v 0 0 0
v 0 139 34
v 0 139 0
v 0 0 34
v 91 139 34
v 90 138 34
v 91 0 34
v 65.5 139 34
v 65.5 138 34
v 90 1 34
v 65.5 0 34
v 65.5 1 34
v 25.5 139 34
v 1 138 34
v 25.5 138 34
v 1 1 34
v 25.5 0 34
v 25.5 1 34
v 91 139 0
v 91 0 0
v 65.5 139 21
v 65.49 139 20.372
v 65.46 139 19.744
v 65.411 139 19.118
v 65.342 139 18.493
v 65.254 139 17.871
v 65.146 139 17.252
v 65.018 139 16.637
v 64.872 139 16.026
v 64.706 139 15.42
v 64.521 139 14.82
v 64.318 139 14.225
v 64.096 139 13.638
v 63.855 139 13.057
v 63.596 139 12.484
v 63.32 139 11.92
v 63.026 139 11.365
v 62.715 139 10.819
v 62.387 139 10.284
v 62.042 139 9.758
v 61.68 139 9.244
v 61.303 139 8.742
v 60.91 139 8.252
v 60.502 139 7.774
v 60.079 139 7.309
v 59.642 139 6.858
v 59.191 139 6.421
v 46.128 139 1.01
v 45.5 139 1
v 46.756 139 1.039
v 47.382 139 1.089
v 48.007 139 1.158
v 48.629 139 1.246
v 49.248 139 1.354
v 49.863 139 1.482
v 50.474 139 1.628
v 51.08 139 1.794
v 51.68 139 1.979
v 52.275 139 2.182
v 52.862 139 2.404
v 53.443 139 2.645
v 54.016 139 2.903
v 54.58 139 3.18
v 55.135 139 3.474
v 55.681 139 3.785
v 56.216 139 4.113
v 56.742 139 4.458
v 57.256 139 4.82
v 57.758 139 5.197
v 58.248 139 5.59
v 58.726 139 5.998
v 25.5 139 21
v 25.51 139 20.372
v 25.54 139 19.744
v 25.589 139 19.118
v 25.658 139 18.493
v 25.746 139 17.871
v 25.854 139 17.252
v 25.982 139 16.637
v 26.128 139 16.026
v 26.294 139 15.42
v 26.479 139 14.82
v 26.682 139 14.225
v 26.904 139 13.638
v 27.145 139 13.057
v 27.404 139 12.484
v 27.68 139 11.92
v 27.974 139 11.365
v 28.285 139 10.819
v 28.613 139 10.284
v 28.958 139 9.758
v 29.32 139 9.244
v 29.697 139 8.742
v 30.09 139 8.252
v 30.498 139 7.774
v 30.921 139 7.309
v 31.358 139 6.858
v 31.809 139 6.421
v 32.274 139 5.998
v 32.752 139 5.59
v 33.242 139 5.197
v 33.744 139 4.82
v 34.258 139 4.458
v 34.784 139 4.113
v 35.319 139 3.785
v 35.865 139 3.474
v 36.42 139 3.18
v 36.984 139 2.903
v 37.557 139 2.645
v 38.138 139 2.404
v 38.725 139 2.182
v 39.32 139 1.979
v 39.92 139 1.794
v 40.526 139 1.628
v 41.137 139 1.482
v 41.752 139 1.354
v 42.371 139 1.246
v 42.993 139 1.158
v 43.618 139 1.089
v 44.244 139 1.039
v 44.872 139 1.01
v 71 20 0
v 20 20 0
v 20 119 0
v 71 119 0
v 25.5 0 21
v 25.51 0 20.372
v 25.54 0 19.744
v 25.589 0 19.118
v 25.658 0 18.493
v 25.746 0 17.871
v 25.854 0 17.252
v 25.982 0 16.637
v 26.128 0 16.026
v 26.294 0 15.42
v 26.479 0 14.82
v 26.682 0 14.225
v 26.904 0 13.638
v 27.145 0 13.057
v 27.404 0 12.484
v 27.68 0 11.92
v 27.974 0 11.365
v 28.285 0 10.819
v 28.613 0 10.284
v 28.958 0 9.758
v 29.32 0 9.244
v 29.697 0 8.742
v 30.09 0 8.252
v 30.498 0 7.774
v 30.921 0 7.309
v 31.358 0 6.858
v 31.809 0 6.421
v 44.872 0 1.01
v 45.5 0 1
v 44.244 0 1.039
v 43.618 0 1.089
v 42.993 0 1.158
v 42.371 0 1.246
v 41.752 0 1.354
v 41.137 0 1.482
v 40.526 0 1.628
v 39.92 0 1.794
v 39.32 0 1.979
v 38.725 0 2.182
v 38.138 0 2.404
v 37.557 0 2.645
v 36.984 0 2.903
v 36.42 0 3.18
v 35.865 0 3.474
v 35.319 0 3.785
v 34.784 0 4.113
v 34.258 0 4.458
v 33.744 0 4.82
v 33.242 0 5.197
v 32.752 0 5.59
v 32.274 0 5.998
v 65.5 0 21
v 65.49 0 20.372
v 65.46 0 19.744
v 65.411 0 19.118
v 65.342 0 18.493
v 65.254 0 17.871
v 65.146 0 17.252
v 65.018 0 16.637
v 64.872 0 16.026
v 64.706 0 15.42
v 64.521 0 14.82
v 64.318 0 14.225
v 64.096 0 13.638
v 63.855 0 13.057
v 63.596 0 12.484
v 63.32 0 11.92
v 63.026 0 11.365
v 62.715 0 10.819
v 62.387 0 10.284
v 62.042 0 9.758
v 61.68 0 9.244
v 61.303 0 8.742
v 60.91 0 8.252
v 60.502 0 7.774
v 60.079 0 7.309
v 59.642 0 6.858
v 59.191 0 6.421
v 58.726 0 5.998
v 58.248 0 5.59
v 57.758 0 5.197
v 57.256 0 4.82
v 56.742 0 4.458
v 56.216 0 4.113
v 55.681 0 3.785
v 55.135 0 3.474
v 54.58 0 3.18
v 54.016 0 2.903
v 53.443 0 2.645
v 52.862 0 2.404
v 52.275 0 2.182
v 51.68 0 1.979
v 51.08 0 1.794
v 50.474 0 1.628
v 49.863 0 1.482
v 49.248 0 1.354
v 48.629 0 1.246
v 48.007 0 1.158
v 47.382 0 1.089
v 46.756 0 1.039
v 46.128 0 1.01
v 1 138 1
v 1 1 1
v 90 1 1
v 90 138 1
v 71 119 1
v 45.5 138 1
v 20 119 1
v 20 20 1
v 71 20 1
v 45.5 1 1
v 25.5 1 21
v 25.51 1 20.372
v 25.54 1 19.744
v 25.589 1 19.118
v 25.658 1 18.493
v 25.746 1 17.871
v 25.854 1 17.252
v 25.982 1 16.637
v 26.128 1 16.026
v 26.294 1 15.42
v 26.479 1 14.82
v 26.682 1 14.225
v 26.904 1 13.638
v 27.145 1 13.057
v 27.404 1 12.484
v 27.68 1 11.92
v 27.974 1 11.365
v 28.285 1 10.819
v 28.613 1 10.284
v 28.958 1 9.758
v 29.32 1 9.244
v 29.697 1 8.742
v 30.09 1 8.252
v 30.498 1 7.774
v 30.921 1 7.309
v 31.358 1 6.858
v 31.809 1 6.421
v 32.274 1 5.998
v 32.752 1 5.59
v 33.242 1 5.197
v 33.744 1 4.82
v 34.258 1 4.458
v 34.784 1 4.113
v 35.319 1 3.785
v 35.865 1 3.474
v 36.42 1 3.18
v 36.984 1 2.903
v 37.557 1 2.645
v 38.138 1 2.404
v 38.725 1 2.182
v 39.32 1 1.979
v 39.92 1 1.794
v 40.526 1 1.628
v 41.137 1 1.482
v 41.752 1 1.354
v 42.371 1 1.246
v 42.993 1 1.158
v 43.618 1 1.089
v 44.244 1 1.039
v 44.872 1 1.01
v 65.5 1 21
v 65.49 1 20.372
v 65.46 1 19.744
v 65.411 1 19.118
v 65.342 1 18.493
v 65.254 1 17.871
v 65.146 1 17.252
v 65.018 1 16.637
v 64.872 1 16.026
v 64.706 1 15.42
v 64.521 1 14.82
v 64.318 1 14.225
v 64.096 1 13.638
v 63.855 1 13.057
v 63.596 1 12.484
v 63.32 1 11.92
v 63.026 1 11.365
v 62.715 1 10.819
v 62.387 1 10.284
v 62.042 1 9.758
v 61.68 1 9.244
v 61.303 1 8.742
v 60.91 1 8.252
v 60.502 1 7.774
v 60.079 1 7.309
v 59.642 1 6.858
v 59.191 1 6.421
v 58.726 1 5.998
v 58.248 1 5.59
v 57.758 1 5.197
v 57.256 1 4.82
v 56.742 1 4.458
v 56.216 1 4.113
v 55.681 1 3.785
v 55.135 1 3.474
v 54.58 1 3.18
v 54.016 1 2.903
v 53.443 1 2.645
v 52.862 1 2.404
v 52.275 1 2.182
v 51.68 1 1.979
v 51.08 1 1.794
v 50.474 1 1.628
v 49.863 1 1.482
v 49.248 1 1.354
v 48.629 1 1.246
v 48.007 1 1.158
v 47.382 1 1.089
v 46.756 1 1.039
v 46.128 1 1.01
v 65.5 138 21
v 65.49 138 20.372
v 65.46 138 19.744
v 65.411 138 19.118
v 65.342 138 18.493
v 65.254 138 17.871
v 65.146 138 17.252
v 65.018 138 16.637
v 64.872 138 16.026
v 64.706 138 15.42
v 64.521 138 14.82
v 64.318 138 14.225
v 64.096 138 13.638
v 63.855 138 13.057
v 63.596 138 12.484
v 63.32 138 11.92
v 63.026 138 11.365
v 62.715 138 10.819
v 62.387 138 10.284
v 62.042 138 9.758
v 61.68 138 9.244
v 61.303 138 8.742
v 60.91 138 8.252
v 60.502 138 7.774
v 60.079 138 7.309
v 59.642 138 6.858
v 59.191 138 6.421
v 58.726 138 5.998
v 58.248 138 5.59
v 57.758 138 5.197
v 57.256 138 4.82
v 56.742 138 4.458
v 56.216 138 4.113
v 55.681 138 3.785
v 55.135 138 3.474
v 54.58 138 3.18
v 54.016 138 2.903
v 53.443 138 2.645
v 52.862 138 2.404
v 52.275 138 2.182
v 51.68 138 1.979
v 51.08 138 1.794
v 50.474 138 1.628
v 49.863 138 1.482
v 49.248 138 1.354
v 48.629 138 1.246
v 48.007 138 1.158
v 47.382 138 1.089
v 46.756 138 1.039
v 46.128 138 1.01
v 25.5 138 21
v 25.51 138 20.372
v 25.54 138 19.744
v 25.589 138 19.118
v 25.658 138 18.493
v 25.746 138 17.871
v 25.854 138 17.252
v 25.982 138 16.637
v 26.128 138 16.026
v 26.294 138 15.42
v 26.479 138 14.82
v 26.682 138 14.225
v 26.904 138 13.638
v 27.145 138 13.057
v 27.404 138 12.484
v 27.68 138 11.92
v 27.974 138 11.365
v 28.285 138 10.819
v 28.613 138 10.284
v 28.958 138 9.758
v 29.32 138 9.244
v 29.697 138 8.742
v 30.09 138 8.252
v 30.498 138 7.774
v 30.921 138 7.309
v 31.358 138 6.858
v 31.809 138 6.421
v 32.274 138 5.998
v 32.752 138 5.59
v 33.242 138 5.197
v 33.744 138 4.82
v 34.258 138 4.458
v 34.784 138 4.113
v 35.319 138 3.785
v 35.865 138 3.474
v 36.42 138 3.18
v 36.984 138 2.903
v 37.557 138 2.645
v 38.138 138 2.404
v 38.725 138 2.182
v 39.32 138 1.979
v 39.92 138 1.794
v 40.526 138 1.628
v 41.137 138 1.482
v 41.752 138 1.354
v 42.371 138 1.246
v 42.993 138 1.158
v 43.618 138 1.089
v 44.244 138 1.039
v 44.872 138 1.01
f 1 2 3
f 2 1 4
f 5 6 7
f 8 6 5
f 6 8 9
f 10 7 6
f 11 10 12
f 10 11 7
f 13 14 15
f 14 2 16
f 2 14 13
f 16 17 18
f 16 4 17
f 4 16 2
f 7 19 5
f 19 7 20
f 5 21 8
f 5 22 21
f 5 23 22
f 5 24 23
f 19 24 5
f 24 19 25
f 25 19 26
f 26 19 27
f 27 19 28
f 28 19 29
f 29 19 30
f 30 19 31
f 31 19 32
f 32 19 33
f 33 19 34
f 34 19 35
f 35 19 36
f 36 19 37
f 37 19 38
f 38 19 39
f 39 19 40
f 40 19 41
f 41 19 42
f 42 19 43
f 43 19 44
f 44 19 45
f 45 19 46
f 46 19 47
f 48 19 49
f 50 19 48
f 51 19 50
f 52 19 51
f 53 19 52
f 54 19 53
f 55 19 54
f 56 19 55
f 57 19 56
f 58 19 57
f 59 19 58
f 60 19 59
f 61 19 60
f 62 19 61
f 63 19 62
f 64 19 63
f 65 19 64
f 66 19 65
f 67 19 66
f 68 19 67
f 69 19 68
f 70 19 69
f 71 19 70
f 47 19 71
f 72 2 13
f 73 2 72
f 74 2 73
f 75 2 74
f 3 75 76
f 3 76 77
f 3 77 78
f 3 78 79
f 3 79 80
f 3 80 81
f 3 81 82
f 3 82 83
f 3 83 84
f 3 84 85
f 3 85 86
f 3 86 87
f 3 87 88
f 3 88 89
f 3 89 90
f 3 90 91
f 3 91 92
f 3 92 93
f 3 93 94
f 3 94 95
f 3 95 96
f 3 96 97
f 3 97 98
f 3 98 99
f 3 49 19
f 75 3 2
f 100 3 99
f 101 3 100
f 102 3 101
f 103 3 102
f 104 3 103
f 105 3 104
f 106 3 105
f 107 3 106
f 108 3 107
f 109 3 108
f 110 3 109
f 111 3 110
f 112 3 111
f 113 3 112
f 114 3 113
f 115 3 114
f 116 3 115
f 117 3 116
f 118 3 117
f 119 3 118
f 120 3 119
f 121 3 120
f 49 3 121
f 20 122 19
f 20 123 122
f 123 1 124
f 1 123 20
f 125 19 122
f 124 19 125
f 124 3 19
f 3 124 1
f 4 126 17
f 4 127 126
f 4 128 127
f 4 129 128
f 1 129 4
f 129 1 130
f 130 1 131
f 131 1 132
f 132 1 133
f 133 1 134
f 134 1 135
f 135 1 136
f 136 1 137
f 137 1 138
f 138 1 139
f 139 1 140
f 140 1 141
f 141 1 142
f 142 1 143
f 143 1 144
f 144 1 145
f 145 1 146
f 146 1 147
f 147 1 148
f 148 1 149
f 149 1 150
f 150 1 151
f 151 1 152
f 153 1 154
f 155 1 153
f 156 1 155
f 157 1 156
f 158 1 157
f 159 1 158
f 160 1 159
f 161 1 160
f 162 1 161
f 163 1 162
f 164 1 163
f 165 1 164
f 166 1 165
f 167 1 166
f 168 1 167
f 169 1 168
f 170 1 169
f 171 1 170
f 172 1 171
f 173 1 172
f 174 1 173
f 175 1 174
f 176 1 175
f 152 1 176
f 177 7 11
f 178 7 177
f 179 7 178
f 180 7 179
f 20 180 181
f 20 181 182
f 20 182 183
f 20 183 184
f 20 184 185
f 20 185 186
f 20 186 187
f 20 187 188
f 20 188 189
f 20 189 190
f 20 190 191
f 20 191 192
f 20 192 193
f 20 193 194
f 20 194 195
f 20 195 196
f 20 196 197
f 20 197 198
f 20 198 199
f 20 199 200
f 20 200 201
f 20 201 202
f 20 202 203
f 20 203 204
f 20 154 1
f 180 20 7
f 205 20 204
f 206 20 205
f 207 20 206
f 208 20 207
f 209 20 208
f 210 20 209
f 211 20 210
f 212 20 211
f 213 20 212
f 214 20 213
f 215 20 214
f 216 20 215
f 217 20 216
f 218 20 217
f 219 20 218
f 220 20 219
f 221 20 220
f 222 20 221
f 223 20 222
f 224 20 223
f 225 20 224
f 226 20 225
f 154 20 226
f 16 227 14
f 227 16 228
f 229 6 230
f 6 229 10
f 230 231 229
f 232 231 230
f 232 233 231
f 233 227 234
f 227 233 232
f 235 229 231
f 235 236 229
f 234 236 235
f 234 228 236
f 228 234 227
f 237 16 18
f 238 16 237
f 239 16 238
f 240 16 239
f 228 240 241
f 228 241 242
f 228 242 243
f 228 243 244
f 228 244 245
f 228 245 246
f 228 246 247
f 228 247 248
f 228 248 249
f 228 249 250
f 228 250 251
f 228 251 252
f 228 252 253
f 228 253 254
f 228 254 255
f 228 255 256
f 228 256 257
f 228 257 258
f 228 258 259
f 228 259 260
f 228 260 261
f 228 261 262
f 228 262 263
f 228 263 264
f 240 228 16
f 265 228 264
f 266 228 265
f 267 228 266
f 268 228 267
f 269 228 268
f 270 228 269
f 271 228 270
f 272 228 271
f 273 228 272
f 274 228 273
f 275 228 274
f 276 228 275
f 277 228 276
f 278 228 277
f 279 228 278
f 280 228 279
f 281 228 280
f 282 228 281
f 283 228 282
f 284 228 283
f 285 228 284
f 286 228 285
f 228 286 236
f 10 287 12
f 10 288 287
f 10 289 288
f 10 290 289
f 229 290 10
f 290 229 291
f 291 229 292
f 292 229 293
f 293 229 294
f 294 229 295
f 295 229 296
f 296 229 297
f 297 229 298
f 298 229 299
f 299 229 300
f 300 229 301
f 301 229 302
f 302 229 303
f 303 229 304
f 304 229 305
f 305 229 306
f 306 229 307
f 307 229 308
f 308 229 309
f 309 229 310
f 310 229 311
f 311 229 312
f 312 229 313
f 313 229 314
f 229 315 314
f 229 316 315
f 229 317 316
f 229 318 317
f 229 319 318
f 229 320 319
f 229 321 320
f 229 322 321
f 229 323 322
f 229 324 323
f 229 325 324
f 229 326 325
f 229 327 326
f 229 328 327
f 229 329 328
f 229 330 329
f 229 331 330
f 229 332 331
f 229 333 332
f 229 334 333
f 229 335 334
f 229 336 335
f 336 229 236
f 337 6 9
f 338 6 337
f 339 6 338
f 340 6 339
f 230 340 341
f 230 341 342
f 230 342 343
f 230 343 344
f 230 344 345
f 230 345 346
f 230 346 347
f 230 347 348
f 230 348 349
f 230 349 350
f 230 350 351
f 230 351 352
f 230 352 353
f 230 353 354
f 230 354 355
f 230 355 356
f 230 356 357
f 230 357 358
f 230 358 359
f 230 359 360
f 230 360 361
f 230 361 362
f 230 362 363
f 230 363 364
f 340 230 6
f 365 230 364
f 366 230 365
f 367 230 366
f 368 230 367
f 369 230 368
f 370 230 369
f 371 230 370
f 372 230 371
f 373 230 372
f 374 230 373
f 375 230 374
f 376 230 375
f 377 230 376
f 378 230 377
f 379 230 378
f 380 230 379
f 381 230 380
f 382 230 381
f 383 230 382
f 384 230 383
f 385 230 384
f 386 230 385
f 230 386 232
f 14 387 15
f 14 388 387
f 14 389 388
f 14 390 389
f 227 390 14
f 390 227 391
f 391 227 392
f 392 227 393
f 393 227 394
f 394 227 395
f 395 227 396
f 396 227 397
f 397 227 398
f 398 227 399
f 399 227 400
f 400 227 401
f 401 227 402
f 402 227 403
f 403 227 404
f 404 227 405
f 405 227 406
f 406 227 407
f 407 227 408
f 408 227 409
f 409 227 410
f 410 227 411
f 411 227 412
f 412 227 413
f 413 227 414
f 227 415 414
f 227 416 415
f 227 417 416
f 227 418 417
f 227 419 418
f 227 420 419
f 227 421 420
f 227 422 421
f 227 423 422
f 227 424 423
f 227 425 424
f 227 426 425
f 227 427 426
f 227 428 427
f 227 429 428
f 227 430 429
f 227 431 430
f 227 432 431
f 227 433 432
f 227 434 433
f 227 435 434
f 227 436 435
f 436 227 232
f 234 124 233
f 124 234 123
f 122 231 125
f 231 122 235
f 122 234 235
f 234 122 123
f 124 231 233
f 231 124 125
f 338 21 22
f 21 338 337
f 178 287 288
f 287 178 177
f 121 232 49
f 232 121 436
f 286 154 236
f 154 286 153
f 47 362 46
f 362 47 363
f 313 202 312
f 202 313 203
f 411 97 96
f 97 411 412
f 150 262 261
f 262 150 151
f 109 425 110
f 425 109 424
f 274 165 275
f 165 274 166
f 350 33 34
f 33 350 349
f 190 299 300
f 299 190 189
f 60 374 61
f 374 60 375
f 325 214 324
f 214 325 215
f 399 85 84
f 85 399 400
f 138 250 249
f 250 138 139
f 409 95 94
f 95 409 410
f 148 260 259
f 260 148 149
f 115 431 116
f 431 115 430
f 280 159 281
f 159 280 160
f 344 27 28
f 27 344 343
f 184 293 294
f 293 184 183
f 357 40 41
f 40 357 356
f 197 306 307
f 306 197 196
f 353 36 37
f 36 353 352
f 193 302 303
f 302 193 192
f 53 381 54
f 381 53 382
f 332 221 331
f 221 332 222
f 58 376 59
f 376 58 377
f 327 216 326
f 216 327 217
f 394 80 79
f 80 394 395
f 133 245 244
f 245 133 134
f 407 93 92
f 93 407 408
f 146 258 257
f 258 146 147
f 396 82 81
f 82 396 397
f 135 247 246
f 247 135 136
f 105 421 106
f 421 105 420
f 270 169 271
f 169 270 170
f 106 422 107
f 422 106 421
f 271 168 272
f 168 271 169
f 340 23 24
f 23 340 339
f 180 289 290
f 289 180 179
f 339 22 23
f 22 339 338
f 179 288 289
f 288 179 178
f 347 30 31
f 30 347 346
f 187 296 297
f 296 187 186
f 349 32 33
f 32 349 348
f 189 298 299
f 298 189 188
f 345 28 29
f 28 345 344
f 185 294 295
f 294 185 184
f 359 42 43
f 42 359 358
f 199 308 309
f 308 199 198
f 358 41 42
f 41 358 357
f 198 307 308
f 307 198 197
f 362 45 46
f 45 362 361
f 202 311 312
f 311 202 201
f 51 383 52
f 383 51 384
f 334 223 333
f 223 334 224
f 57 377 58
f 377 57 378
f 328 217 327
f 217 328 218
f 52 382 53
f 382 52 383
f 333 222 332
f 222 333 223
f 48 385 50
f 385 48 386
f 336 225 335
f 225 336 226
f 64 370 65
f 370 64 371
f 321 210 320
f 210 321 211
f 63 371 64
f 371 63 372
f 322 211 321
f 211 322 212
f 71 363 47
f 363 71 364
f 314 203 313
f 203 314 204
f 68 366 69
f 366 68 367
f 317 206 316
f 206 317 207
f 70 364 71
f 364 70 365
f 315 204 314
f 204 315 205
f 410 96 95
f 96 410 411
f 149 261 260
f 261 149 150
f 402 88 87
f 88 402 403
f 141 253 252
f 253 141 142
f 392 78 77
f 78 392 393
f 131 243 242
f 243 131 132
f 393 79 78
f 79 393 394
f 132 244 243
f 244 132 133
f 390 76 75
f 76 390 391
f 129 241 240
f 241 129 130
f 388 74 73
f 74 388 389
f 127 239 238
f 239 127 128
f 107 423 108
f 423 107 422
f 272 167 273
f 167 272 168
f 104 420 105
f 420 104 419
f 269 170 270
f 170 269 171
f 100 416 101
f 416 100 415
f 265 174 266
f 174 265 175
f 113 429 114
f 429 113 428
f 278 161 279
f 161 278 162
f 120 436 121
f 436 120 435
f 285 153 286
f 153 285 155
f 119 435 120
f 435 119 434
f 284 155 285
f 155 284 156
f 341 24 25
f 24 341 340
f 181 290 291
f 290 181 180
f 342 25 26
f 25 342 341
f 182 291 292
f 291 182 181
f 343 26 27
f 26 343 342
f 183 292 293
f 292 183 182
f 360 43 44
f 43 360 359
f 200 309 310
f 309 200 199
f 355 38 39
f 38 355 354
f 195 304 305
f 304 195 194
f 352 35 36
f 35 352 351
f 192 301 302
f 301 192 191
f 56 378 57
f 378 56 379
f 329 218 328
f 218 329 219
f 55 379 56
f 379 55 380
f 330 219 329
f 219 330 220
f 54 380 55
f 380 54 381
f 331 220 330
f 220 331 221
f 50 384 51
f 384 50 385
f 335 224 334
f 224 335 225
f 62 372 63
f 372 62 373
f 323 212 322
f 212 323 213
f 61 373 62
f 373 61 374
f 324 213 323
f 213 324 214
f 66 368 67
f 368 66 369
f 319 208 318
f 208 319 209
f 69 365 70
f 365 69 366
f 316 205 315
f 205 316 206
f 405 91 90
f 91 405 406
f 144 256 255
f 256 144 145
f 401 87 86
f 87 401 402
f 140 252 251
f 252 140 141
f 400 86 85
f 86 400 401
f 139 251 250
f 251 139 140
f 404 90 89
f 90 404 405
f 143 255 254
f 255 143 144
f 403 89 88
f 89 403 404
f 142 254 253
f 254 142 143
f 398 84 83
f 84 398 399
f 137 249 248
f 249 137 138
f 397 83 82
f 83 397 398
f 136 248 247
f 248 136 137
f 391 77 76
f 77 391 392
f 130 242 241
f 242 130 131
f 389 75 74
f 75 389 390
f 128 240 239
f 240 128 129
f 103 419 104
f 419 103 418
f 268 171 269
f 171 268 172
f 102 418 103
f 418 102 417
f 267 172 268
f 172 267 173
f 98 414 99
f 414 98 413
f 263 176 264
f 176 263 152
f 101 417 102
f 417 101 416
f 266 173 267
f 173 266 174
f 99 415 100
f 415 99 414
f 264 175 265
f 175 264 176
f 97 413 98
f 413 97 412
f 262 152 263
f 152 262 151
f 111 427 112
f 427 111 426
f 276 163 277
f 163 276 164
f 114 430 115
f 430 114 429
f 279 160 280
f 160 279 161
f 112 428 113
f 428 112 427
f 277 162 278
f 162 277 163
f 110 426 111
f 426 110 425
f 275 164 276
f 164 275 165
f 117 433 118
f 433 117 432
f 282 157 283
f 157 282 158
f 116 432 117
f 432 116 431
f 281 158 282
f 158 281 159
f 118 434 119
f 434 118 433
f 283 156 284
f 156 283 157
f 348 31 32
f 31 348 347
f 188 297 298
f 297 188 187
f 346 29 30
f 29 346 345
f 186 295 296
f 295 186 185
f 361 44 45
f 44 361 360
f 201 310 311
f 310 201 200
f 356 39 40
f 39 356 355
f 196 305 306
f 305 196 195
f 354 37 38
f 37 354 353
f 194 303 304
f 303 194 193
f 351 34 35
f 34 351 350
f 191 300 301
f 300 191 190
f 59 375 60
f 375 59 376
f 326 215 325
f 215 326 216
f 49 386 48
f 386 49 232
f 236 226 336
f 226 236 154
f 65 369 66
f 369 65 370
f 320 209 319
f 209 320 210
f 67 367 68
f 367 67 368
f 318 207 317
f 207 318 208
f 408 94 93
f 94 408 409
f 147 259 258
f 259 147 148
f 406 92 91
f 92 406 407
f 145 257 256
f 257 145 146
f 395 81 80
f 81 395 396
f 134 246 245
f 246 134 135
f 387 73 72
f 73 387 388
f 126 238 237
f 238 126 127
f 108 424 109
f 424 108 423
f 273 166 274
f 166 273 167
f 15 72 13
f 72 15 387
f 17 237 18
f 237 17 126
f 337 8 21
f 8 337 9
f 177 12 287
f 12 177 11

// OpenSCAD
$fn=200;

THICK = 1;

CARD_L = 96;
CARD_W = 68;
CARD_STACK = 38;

LARGE_CARD_L = 132;
LARGE_CARD_W = 84;
LARGE_CARD_STACK = 15;

SMALL_CARD_L = 66;
SMALL_CARD_W = 43;
SMALL_CARD_STACK = 16;

STUMP = 2;

BOX_W = LARGE_CARD_W + (THICK * 2) + 5;
BOX_L = LARGE_CARD_L + (THICK * 2) + 5;
BOX_H = LARGE_CARD_STACK + SMALL_CARD_STACK + THICK + STUMP;

SMALL_X = (BOX_W / 2) - (SMALL_CARD_L / 2);

// cube(size = [
//     BOX_W + (THICK * 4),
//     BOX_L + (THICK * 4), 
//     THICK]);

MARGIN = 20;

difference() {
    cube(size = [
        BOX_W,
        BOX_L, 
        BOX_H]);

    translate([
        THICK, 
        THICK, 
        THICK]) {
            
        cube(size = [
            BOX_W - (THICK * 2),
            BOX_L - (THICK * 2),
            BOX_H]);
    }

    translate([
        MARGIN,
        MARGIN,
        -1]) {

        cube(size = [
            BOX_W - (MARGIN * 2),
            BOX_L - (MARGIN * 2),
            10]);
    }

    translate([
        (BOX_W / 2),
        -1,
        21]) {

        rotate([270, 0, 0]) {
            cylinder(
                h = 1000,
                r = 20);
        }
    }

    translate([
        (BOX_W / 2) - 20, 
        -1, 
        21]) {
            
        cube(size = [
            40,
            150,
            80]);
    }
}
